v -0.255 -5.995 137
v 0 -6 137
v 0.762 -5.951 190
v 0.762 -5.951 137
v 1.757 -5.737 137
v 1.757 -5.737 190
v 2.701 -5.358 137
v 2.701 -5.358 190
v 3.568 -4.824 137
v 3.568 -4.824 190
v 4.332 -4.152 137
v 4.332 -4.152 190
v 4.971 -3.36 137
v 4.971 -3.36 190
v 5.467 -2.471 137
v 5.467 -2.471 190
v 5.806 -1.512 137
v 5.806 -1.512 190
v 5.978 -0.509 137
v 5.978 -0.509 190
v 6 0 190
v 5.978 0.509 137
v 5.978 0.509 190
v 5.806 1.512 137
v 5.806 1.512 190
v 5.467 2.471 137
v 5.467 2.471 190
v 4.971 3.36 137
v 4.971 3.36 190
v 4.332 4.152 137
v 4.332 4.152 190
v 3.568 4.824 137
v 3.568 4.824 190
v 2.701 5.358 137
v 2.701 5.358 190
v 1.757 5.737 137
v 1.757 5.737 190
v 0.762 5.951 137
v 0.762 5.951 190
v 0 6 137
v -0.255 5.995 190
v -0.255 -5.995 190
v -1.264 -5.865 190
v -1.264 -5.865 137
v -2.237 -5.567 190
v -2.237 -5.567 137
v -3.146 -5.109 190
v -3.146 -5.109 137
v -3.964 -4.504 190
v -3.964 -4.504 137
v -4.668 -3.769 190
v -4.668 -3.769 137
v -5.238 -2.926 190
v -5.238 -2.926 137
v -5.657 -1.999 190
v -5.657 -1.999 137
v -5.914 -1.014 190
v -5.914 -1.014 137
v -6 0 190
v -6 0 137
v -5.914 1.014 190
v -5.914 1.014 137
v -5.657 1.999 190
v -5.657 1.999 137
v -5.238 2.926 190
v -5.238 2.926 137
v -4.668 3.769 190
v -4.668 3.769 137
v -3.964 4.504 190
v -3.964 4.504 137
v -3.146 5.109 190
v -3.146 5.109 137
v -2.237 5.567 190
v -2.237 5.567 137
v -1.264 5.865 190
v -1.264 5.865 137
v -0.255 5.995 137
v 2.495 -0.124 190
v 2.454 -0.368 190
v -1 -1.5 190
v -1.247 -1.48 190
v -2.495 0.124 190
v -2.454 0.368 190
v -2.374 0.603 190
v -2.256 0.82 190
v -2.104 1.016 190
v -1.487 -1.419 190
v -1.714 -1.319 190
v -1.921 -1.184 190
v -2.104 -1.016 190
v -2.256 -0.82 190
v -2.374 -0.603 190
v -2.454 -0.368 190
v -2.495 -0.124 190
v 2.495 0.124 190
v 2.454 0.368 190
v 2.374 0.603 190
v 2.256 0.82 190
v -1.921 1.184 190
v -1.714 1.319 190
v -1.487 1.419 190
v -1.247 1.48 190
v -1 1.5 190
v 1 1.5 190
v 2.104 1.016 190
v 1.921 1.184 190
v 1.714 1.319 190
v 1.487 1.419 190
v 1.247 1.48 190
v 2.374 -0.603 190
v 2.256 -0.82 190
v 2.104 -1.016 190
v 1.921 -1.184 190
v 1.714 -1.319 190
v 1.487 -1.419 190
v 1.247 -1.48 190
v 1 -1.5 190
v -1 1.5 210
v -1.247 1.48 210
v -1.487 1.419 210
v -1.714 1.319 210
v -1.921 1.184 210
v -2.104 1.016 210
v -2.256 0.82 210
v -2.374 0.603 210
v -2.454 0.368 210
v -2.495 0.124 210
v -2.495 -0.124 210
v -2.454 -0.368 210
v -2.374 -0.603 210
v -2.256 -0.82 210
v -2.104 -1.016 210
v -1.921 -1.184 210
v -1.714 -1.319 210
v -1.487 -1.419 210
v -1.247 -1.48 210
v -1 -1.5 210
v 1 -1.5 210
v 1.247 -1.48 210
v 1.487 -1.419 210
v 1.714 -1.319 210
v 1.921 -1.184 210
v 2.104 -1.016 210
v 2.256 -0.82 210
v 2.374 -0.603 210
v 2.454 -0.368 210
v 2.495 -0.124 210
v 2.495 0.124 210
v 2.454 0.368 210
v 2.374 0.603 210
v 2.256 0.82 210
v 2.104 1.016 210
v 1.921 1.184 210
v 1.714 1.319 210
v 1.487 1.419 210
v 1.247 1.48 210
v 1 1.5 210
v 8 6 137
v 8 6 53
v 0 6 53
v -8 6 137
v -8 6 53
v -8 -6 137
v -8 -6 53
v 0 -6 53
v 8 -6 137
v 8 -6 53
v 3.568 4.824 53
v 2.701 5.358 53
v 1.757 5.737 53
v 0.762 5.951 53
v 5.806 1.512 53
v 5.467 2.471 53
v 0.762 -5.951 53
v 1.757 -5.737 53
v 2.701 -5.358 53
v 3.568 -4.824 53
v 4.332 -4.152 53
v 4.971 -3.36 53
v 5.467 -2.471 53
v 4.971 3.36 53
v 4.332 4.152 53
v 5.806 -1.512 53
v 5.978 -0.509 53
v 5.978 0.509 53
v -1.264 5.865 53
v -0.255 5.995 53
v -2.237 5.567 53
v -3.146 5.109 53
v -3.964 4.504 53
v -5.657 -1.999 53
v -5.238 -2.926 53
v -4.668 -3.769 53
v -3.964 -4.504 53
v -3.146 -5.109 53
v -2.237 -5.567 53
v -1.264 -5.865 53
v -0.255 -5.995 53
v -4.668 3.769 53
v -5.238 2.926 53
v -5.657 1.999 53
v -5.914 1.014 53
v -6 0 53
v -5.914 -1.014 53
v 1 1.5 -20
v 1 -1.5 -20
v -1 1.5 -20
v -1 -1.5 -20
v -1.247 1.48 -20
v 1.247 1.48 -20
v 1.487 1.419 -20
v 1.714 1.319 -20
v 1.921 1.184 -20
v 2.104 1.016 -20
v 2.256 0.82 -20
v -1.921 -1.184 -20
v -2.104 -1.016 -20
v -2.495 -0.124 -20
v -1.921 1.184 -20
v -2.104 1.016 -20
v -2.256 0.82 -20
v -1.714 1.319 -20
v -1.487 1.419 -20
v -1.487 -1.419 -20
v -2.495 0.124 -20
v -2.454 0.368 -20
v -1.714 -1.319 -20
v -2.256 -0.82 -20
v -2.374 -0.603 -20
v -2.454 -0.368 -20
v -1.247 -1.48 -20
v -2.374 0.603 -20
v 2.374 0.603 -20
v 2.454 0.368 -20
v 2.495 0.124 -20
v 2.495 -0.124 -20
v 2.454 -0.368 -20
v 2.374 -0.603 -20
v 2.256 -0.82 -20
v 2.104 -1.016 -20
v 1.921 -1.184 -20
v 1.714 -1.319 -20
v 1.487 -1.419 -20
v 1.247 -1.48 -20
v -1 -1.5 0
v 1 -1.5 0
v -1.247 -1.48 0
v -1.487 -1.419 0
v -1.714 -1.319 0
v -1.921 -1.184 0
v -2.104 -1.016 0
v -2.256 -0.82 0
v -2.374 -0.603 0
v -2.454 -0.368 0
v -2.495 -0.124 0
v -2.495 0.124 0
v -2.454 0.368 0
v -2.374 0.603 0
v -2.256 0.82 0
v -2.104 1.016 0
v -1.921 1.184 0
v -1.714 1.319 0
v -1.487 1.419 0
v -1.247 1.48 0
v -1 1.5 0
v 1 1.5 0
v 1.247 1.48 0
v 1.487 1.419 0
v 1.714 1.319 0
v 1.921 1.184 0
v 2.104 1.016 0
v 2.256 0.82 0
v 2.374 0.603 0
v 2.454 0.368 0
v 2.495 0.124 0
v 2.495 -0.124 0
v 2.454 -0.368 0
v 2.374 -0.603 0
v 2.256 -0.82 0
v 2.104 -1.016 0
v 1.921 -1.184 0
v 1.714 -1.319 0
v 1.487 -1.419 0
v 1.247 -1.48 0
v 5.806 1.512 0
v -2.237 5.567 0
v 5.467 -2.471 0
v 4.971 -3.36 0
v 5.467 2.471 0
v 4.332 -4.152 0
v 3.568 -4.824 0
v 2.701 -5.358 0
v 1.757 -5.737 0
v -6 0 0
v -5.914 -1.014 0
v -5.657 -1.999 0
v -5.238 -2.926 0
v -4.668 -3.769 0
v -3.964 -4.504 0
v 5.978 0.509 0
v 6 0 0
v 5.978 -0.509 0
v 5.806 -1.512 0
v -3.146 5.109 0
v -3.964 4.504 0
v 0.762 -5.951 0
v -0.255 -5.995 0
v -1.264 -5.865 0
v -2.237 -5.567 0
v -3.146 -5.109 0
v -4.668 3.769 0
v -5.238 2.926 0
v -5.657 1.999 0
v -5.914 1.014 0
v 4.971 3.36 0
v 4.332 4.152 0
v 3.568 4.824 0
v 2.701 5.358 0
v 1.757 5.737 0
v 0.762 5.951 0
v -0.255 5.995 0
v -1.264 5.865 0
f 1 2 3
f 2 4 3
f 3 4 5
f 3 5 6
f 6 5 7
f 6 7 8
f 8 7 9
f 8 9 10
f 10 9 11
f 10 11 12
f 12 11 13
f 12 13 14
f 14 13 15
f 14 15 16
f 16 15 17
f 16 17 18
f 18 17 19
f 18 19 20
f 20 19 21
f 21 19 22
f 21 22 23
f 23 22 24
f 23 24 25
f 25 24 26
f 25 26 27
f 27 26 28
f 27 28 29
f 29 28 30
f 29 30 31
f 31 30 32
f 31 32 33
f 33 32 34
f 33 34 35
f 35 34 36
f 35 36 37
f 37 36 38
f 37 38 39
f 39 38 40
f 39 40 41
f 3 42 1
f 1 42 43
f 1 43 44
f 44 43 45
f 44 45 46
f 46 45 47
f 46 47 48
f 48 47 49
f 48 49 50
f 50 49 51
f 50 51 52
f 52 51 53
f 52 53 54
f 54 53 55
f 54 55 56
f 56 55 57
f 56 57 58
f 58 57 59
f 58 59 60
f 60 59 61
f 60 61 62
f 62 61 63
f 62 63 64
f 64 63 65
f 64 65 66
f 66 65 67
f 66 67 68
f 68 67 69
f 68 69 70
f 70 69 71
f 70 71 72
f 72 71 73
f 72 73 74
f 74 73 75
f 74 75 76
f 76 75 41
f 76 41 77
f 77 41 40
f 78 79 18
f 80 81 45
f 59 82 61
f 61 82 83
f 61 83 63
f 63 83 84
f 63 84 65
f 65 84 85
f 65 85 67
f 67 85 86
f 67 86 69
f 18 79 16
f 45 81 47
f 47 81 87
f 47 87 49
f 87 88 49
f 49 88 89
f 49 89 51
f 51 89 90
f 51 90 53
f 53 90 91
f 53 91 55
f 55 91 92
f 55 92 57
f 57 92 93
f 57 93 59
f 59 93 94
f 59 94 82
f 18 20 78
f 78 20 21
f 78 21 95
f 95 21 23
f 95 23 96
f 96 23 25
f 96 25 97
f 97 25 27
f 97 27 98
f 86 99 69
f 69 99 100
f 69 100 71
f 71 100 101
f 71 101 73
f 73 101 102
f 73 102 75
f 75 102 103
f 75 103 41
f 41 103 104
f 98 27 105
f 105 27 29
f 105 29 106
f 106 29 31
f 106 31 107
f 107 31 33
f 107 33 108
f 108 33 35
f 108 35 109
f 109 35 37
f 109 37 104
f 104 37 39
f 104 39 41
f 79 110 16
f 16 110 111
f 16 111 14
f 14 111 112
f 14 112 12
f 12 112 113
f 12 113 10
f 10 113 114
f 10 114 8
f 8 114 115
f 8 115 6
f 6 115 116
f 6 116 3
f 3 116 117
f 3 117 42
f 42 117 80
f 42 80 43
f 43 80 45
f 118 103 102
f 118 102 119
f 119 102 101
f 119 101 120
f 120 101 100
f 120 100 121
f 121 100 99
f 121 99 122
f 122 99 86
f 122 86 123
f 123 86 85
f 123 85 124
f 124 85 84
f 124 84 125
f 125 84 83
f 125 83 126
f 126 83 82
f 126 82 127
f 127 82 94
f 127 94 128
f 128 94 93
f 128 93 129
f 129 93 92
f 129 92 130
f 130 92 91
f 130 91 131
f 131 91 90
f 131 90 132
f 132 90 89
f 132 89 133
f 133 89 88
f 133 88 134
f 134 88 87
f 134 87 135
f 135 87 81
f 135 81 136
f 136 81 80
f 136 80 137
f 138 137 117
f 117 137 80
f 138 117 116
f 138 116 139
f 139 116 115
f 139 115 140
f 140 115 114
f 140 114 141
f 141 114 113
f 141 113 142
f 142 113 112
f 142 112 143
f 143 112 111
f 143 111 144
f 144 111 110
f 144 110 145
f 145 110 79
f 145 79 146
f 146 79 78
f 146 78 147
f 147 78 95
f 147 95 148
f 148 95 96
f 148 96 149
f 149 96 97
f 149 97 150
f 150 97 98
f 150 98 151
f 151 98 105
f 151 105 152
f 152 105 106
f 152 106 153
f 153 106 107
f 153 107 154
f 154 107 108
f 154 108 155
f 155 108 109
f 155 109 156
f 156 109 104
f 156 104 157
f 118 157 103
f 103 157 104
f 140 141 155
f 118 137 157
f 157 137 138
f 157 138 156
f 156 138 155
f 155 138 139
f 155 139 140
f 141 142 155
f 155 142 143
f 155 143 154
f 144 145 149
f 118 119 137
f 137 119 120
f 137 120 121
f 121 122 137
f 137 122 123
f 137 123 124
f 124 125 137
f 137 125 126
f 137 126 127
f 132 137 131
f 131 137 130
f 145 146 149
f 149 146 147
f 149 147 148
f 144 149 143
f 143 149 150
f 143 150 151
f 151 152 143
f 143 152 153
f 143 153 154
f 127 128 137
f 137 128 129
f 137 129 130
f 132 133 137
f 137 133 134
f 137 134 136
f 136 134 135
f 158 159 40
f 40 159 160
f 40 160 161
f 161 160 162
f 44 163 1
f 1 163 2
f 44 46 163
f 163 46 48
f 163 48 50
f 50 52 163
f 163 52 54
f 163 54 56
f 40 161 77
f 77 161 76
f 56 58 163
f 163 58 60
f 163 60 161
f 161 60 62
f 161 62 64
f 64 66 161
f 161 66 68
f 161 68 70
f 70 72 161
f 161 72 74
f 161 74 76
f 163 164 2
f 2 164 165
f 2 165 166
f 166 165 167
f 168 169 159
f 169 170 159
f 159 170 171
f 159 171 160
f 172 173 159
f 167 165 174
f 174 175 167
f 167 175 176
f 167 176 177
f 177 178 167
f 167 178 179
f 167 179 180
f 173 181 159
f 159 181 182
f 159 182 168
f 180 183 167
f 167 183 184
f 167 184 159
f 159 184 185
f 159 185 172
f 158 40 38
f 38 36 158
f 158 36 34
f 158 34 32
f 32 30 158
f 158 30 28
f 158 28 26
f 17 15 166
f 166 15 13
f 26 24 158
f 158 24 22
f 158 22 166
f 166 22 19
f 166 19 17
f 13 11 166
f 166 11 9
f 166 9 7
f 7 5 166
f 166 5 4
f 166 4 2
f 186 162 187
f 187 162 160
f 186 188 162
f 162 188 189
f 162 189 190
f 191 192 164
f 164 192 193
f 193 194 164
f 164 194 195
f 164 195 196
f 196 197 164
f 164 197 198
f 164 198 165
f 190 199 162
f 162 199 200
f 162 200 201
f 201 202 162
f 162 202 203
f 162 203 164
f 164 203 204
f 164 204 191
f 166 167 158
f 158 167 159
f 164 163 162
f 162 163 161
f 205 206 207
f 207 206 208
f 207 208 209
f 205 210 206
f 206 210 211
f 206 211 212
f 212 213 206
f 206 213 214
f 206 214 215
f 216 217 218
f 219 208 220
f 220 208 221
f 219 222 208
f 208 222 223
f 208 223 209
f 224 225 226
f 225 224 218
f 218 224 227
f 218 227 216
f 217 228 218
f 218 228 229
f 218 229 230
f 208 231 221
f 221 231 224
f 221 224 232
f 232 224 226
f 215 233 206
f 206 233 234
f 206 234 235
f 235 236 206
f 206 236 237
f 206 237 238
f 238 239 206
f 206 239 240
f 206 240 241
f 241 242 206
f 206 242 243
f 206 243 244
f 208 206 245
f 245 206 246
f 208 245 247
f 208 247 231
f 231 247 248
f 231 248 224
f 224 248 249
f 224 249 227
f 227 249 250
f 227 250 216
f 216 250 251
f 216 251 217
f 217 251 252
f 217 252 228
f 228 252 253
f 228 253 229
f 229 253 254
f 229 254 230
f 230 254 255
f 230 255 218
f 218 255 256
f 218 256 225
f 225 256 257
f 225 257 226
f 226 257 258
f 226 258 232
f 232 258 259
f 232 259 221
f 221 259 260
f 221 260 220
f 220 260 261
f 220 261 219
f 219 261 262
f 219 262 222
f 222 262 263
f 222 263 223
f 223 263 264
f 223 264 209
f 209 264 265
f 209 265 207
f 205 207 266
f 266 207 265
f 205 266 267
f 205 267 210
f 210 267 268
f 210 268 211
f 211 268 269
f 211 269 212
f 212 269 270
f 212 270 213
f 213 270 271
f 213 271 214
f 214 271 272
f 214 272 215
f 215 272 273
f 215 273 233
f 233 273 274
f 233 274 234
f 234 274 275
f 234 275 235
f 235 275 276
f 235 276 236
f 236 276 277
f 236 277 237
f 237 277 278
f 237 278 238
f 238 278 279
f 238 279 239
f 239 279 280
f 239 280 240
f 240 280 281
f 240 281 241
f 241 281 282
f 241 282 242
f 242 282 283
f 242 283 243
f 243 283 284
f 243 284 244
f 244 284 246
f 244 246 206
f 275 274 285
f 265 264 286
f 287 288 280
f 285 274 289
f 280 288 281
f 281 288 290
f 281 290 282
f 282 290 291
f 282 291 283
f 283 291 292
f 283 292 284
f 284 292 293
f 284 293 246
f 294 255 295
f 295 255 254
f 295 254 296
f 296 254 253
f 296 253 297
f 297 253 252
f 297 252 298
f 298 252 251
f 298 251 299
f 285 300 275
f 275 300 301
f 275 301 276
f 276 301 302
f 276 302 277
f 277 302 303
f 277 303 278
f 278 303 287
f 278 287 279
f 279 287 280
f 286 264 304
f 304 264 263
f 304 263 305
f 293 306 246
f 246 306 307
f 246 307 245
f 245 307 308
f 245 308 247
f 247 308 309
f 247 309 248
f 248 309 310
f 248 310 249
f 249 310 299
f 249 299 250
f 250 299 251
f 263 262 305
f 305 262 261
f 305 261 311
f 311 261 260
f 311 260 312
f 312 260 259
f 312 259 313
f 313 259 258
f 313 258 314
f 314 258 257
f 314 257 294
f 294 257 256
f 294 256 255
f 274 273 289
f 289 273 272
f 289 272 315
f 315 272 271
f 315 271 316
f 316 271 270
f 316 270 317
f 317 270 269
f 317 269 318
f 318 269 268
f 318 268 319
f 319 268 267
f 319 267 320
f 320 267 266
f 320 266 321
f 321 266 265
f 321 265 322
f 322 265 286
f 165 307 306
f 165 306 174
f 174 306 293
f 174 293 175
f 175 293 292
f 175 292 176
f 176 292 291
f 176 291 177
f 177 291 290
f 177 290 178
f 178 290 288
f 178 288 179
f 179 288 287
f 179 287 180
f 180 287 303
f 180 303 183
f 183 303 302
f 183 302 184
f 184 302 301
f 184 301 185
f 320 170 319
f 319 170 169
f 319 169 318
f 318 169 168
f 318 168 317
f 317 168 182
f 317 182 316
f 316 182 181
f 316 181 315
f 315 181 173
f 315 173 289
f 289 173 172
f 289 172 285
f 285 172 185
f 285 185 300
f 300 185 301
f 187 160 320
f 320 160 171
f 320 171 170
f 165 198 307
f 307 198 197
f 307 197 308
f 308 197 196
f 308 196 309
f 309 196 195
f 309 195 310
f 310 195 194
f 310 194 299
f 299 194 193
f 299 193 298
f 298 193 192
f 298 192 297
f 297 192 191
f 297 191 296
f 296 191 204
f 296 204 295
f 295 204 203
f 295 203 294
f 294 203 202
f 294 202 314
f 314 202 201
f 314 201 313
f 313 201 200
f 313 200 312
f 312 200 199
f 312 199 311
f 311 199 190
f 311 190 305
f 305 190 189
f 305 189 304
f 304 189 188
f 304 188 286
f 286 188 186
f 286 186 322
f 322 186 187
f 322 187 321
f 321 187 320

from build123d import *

# Parameters (mm, degrees)
ESQUISSE1_R             = 6
BOSS_EXTRU_1_DEPTH      = 190
BOSS_EXTRU_2_DEPTH      = 20
BOSS_EXTRU_3_START      = 20
BOSS_EXTRU_3_DEPTH      = 20
BOSS_EXTRU_5_DEPTH      = 8
BOSS_EXTRU_5_DEPTH_BACK = 8
ESQUISSE5_W             = 84
ESQUISSE5_H             = 12


with BuildPart() as part:
    # Esquisse1 → Boss.-Extru.1 (new body)
    with BuildSketch(Plane.XY):
        Circle(ESQUISSE1_R)
    extrude(amount=BOSS_EXTRU_1_DEPTH)

    # Esquisse2 → Boss.-Extru.2 (add)
    with BuildSketch(Plane.XY.offset(190)):
        with BuildLine():
            Line((-1, 1.5), (1, 1.5))
            ThreePointArc((1, 1.5), (2.5, 0), (1, -1.5))
            Line((1, -1.5), (-1, -1.5))
            ThreePointArc((-1, -1.5), (-2.5, 0), (-1, 1.5))
        make_face()
    extrude(amount=BOSS_EXTRU_2_DEPTH)

    # Esquisse3 → Boss.-Extru.3 (add)
    with BuildSketch(Plane(origin=(0, 0, 0), x_dir=(-1, 0, 0), z_dir=(0, 0, -1)).offset(BOSS_EXTRU_3_START)):
        with BuildLine():
            Line((-1, 1.5), (1, 1.5))
            ThreePointArc((1, 1.5), (2.5, 0), (1, -1.5))
            Line((1, -1.5), (-1, -1.5))
            ThreePointArc((-1, -1.5), (-2.5, 0), (-1, 1.5))
        make_face()
    extrude(amount=-BOSS_EXTRU_3_DEPTH)

    # Esquisse5 → Boss.-Extru.5 (add, two sides: drawn at the far end of the back side and taken through both)
    with BuildSketch(Plane(origin=(0, 0, 0), x_dir=(0, 0, -1), z_dir=(-1, 0, 0)).offset(-BOSS_EXTRU_5_DEPTH_BACK)):
        with Locations((-95, 0)):
            Rectangle(ESQUISSE5_W, ESQUISSE5_H)
    extrude(amount=BOSS_EXTRU_5_DEPTH + BOSS_EXTRU_5_DEPTH_BACK)


solid = part.part
